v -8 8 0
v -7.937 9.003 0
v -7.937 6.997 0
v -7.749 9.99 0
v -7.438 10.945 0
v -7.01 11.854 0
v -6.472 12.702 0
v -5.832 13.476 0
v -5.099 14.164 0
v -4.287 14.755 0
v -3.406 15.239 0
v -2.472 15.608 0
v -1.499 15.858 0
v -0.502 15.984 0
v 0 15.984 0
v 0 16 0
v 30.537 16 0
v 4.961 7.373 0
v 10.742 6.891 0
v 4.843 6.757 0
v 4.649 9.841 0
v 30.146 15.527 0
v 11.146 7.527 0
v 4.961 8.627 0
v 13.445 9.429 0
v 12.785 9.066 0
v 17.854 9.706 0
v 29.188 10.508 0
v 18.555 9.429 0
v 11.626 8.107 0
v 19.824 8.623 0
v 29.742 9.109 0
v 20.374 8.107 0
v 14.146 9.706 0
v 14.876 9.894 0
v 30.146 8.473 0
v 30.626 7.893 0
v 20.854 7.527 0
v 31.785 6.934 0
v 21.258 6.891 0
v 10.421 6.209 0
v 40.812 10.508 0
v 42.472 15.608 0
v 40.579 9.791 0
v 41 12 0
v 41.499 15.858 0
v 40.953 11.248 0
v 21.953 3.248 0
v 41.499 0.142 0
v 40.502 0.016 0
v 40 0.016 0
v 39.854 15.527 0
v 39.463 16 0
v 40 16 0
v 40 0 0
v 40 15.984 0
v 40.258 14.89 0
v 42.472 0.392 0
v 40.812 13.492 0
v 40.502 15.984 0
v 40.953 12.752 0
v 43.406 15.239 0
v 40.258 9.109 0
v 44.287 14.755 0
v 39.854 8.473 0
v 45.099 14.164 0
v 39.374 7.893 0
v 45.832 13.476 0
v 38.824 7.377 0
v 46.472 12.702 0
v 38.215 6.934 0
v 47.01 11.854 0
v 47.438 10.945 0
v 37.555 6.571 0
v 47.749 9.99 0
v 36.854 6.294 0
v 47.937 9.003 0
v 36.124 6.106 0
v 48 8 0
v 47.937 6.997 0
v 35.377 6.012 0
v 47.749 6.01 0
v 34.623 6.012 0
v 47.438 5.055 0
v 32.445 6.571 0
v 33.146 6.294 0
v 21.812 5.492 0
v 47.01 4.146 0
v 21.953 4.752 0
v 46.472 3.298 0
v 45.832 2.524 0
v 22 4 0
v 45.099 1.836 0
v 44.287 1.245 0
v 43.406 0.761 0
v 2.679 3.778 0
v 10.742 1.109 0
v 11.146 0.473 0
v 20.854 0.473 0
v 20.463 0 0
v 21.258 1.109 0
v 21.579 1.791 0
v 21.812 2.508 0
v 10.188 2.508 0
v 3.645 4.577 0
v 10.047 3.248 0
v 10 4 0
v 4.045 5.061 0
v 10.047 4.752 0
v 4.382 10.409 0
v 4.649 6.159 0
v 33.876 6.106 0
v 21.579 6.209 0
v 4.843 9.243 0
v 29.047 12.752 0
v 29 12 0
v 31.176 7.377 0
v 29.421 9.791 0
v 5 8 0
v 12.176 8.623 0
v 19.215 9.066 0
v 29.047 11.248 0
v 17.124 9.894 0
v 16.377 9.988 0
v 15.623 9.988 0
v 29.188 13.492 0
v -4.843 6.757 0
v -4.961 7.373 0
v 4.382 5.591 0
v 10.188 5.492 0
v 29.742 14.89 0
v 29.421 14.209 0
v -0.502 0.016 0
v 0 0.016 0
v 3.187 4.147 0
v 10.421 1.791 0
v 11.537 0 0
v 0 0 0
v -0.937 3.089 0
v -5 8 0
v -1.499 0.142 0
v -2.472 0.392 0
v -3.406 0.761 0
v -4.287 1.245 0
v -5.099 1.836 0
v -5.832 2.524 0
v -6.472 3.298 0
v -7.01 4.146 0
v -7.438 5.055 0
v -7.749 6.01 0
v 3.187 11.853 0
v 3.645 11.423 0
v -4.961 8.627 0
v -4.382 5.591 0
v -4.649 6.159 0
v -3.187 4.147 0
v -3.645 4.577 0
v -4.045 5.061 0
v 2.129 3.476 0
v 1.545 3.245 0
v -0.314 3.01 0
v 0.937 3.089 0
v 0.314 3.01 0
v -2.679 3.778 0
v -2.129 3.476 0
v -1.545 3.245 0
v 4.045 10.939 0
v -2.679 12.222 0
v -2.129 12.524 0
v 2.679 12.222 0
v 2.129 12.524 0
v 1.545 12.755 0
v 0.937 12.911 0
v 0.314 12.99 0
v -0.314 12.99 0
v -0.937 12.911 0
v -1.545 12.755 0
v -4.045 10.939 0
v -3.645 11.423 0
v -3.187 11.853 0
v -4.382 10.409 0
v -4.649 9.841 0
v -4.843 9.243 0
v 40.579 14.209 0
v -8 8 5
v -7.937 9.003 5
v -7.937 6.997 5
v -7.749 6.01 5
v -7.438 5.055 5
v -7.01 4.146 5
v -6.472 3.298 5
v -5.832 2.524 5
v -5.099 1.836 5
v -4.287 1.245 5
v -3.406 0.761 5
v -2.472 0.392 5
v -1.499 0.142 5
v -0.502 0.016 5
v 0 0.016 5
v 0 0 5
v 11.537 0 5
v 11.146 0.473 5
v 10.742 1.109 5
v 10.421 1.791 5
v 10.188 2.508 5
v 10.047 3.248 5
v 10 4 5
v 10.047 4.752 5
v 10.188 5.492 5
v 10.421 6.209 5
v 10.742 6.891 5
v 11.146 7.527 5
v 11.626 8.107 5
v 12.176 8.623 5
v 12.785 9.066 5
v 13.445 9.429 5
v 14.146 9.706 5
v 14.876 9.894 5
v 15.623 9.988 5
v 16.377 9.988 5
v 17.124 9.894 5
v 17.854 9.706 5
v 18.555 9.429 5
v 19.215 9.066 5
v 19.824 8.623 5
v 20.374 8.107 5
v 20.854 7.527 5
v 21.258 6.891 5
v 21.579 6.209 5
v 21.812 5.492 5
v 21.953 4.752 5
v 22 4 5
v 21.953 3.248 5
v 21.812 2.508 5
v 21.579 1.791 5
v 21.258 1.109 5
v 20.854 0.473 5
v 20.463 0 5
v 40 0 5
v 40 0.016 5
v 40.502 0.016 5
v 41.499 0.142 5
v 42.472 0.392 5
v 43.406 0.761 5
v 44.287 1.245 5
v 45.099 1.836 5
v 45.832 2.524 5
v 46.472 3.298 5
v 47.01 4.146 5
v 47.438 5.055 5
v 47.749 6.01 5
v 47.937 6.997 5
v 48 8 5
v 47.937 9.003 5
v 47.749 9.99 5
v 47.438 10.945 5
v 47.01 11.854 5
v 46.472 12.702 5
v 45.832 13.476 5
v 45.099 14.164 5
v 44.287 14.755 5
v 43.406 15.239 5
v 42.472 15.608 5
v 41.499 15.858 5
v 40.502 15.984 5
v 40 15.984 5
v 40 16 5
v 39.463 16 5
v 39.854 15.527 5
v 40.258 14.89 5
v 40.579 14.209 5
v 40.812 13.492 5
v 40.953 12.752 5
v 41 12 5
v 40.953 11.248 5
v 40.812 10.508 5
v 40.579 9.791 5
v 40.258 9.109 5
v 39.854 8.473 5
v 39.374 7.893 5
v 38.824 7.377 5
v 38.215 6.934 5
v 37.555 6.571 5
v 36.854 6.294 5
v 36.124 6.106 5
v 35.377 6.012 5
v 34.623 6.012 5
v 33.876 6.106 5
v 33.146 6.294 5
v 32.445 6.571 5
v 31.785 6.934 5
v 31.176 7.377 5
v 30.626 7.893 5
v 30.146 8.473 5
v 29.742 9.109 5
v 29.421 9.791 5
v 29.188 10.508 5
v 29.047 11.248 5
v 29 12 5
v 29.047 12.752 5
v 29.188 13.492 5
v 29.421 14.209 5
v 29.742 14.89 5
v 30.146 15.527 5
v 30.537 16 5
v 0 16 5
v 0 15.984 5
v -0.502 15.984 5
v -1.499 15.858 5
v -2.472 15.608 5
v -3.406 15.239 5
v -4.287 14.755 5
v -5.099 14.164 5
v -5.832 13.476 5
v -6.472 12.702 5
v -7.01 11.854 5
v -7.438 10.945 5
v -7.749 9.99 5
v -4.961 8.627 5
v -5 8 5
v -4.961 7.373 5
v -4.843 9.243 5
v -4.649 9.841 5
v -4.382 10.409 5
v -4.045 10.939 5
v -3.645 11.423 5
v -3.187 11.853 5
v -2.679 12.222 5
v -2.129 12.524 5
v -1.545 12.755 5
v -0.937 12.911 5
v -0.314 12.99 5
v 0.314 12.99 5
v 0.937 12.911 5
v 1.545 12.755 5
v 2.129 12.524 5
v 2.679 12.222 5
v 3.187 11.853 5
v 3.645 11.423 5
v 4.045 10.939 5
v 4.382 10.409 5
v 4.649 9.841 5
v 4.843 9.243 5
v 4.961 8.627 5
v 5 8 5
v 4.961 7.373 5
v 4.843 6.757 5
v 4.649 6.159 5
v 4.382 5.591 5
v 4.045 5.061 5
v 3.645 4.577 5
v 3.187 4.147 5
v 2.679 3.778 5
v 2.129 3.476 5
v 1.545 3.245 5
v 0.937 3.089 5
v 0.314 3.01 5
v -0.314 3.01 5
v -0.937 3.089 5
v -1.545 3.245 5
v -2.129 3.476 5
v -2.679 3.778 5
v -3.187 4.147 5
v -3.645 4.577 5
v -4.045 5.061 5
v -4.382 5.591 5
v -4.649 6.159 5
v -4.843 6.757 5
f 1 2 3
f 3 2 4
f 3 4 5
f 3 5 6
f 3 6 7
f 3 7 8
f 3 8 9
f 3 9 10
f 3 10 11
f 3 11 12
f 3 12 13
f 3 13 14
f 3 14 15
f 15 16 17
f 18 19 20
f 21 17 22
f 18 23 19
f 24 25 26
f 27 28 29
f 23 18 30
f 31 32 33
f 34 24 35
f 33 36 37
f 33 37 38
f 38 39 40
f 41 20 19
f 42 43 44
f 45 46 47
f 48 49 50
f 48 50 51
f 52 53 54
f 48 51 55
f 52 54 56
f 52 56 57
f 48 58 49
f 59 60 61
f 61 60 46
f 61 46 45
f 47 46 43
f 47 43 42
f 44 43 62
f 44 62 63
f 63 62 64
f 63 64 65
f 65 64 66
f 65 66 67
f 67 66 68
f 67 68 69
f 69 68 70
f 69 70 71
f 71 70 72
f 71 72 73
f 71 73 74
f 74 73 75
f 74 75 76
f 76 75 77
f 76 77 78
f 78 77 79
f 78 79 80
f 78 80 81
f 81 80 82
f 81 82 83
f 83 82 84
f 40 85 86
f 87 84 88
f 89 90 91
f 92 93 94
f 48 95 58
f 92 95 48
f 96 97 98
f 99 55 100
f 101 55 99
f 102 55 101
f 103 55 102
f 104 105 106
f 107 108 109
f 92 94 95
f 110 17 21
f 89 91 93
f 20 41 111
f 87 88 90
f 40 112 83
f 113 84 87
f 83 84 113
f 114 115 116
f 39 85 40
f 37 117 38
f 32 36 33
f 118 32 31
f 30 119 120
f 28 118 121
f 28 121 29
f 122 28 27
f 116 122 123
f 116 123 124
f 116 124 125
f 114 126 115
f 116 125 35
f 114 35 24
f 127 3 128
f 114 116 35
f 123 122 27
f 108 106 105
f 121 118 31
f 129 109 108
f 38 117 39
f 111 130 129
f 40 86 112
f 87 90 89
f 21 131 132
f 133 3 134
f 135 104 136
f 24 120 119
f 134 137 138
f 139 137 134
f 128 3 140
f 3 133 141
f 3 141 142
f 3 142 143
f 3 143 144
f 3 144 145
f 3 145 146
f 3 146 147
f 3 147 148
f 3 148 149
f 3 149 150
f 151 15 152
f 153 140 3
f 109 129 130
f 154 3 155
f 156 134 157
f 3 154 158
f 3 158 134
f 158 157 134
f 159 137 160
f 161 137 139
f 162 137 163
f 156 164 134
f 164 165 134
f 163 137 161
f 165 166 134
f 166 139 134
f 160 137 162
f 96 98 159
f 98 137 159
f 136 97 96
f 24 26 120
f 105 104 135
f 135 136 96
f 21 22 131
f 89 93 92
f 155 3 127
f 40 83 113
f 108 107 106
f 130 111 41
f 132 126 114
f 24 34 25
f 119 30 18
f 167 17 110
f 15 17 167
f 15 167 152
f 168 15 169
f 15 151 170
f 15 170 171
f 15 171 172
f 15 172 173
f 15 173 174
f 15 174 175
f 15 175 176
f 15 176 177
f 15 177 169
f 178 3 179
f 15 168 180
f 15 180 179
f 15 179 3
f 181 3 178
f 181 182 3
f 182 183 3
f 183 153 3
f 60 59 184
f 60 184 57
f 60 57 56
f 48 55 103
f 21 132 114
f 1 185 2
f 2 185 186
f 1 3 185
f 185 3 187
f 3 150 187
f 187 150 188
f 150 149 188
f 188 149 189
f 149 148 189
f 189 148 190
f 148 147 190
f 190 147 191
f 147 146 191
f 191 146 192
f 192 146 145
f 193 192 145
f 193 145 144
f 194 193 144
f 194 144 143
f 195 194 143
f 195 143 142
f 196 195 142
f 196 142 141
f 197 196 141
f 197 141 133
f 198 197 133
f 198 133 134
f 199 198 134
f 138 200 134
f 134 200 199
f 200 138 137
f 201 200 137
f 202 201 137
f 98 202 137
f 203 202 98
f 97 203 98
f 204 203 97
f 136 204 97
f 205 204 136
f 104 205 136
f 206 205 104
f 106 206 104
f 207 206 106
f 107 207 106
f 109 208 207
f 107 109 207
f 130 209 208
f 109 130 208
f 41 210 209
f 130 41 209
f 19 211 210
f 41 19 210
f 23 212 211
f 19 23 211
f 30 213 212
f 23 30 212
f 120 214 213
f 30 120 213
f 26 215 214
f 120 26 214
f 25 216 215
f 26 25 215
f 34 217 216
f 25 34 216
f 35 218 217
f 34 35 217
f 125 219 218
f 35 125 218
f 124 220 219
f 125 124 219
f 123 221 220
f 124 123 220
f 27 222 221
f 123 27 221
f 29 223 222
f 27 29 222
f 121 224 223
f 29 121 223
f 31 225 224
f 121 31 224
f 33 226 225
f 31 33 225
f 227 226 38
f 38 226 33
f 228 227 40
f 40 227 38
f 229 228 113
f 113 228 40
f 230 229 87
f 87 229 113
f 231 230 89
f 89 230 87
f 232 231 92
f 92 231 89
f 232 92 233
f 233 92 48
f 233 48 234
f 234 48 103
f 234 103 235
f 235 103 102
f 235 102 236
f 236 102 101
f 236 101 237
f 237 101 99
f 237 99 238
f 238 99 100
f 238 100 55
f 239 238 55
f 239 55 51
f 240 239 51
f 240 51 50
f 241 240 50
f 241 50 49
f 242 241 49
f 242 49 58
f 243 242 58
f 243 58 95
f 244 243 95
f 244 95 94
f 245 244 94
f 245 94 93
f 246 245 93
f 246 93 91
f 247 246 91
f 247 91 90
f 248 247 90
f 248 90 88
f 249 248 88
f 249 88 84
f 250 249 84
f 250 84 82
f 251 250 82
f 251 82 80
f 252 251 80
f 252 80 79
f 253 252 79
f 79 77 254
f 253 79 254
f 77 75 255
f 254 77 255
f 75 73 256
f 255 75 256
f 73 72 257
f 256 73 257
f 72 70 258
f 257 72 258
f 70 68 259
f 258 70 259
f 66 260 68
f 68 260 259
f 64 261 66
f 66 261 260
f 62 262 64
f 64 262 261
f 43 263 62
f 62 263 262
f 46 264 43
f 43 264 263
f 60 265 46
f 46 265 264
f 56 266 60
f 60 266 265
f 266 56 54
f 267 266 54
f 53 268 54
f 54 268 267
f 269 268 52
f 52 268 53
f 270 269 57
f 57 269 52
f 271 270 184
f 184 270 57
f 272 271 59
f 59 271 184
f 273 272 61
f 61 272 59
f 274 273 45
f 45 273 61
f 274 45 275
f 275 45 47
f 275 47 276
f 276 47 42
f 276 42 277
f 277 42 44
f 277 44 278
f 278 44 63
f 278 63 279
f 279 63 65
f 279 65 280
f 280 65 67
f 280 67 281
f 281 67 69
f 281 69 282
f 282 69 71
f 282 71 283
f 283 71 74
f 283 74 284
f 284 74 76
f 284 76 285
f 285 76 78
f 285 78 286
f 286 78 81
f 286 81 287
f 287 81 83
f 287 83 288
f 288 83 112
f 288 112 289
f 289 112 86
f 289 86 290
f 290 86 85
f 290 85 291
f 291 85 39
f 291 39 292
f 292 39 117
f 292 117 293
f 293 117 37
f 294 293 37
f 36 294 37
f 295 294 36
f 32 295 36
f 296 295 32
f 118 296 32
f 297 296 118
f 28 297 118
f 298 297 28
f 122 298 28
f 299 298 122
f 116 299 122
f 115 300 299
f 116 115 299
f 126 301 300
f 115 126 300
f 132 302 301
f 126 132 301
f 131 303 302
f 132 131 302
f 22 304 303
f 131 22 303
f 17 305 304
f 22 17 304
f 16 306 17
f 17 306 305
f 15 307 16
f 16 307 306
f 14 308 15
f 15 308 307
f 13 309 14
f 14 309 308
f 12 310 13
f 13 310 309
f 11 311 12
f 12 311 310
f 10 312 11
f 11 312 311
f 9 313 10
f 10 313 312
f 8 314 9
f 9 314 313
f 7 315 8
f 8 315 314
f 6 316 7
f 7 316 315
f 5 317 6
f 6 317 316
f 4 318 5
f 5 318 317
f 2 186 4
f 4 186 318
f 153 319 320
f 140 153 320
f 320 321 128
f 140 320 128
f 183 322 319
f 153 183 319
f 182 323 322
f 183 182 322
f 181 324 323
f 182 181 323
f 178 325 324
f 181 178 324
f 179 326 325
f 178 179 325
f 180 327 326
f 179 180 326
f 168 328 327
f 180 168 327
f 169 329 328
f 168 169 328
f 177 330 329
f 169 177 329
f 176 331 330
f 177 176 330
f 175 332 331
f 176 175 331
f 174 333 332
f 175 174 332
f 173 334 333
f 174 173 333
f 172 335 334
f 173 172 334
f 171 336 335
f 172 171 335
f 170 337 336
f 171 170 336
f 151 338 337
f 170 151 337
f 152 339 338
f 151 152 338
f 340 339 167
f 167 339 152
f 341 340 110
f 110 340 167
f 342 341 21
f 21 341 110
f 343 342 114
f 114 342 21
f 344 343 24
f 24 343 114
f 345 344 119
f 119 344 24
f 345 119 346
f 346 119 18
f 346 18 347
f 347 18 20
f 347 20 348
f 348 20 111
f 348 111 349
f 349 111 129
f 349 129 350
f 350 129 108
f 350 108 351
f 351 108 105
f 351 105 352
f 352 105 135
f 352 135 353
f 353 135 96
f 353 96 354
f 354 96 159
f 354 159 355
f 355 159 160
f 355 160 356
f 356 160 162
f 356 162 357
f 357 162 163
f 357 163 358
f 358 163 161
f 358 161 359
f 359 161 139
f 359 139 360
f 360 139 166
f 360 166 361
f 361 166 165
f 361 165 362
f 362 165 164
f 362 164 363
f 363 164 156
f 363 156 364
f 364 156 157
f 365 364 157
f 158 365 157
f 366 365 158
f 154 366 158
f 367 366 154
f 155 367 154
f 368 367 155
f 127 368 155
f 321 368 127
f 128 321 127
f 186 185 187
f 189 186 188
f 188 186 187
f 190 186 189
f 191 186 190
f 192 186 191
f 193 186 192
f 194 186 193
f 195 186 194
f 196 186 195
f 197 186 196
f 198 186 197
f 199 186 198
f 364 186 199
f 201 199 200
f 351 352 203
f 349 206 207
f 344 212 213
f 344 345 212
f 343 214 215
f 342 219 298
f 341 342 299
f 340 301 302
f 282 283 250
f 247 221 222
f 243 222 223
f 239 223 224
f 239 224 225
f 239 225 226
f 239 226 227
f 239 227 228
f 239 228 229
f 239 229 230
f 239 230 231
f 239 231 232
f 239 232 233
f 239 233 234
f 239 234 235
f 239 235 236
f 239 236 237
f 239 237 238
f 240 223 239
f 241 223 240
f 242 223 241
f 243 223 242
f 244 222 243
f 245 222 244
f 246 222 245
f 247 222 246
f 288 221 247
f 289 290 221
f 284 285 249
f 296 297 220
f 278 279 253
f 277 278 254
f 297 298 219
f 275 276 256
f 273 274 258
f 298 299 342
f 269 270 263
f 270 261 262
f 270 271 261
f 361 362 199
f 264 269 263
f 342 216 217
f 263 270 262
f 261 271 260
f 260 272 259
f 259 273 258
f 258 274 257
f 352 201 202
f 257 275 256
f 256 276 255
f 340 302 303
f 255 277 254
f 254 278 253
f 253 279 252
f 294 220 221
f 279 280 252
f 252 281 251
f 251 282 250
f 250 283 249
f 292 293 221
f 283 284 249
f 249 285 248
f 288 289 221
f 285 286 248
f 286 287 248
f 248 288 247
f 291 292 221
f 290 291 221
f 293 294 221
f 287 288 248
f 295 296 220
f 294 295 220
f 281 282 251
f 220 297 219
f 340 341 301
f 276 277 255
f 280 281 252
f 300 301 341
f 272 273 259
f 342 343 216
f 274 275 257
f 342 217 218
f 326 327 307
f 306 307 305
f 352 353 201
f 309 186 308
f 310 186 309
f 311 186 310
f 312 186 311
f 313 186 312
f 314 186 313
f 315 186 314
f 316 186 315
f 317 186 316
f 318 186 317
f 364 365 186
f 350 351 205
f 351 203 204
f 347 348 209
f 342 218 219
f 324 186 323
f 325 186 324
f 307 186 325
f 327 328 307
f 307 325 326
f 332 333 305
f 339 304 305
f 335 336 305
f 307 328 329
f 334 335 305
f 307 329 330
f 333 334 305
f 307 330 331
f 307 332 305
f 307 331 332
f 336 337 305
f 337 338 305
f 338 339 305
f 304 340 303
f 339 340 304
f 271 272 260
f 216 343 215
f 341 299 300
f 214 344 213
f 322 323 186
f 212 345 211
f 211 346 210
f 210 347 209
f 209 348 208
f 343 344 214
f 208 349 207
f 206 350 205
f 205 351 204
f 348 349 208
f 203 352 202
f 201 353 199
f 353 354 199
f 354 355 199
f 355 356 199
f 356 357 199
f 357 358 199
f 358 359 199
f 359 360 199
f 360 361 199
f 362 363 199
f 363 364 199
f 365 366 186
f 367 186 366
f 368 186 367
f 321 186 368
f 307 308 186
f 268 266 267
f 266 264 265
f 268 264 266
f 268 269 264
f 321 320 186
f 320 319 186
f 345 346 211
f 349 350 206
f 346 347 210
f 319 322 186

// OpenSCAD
difference(){

	// body
	union(){

		cube([40,16,5]);

		translate([0,8,0]){
			cylinder(r=8,h=5, $fn=50);
		}

		translate([40,8,0]){
			cylinder(r=8,h=5, $fn=50);
		}
	}

	// mounting hole
	translate([0,8,-1]){
		cylinder(r=5,h=7, $fn=50);
	}

	// cable hole 1
	translate([35,12,-1]){
		cylinder(r=6,h=7, $fn=50);
	}

	// cable hole 2
	translate([16,4,-1]){
		cylinder(r=6,h=7, $fn=50);
	}
}
